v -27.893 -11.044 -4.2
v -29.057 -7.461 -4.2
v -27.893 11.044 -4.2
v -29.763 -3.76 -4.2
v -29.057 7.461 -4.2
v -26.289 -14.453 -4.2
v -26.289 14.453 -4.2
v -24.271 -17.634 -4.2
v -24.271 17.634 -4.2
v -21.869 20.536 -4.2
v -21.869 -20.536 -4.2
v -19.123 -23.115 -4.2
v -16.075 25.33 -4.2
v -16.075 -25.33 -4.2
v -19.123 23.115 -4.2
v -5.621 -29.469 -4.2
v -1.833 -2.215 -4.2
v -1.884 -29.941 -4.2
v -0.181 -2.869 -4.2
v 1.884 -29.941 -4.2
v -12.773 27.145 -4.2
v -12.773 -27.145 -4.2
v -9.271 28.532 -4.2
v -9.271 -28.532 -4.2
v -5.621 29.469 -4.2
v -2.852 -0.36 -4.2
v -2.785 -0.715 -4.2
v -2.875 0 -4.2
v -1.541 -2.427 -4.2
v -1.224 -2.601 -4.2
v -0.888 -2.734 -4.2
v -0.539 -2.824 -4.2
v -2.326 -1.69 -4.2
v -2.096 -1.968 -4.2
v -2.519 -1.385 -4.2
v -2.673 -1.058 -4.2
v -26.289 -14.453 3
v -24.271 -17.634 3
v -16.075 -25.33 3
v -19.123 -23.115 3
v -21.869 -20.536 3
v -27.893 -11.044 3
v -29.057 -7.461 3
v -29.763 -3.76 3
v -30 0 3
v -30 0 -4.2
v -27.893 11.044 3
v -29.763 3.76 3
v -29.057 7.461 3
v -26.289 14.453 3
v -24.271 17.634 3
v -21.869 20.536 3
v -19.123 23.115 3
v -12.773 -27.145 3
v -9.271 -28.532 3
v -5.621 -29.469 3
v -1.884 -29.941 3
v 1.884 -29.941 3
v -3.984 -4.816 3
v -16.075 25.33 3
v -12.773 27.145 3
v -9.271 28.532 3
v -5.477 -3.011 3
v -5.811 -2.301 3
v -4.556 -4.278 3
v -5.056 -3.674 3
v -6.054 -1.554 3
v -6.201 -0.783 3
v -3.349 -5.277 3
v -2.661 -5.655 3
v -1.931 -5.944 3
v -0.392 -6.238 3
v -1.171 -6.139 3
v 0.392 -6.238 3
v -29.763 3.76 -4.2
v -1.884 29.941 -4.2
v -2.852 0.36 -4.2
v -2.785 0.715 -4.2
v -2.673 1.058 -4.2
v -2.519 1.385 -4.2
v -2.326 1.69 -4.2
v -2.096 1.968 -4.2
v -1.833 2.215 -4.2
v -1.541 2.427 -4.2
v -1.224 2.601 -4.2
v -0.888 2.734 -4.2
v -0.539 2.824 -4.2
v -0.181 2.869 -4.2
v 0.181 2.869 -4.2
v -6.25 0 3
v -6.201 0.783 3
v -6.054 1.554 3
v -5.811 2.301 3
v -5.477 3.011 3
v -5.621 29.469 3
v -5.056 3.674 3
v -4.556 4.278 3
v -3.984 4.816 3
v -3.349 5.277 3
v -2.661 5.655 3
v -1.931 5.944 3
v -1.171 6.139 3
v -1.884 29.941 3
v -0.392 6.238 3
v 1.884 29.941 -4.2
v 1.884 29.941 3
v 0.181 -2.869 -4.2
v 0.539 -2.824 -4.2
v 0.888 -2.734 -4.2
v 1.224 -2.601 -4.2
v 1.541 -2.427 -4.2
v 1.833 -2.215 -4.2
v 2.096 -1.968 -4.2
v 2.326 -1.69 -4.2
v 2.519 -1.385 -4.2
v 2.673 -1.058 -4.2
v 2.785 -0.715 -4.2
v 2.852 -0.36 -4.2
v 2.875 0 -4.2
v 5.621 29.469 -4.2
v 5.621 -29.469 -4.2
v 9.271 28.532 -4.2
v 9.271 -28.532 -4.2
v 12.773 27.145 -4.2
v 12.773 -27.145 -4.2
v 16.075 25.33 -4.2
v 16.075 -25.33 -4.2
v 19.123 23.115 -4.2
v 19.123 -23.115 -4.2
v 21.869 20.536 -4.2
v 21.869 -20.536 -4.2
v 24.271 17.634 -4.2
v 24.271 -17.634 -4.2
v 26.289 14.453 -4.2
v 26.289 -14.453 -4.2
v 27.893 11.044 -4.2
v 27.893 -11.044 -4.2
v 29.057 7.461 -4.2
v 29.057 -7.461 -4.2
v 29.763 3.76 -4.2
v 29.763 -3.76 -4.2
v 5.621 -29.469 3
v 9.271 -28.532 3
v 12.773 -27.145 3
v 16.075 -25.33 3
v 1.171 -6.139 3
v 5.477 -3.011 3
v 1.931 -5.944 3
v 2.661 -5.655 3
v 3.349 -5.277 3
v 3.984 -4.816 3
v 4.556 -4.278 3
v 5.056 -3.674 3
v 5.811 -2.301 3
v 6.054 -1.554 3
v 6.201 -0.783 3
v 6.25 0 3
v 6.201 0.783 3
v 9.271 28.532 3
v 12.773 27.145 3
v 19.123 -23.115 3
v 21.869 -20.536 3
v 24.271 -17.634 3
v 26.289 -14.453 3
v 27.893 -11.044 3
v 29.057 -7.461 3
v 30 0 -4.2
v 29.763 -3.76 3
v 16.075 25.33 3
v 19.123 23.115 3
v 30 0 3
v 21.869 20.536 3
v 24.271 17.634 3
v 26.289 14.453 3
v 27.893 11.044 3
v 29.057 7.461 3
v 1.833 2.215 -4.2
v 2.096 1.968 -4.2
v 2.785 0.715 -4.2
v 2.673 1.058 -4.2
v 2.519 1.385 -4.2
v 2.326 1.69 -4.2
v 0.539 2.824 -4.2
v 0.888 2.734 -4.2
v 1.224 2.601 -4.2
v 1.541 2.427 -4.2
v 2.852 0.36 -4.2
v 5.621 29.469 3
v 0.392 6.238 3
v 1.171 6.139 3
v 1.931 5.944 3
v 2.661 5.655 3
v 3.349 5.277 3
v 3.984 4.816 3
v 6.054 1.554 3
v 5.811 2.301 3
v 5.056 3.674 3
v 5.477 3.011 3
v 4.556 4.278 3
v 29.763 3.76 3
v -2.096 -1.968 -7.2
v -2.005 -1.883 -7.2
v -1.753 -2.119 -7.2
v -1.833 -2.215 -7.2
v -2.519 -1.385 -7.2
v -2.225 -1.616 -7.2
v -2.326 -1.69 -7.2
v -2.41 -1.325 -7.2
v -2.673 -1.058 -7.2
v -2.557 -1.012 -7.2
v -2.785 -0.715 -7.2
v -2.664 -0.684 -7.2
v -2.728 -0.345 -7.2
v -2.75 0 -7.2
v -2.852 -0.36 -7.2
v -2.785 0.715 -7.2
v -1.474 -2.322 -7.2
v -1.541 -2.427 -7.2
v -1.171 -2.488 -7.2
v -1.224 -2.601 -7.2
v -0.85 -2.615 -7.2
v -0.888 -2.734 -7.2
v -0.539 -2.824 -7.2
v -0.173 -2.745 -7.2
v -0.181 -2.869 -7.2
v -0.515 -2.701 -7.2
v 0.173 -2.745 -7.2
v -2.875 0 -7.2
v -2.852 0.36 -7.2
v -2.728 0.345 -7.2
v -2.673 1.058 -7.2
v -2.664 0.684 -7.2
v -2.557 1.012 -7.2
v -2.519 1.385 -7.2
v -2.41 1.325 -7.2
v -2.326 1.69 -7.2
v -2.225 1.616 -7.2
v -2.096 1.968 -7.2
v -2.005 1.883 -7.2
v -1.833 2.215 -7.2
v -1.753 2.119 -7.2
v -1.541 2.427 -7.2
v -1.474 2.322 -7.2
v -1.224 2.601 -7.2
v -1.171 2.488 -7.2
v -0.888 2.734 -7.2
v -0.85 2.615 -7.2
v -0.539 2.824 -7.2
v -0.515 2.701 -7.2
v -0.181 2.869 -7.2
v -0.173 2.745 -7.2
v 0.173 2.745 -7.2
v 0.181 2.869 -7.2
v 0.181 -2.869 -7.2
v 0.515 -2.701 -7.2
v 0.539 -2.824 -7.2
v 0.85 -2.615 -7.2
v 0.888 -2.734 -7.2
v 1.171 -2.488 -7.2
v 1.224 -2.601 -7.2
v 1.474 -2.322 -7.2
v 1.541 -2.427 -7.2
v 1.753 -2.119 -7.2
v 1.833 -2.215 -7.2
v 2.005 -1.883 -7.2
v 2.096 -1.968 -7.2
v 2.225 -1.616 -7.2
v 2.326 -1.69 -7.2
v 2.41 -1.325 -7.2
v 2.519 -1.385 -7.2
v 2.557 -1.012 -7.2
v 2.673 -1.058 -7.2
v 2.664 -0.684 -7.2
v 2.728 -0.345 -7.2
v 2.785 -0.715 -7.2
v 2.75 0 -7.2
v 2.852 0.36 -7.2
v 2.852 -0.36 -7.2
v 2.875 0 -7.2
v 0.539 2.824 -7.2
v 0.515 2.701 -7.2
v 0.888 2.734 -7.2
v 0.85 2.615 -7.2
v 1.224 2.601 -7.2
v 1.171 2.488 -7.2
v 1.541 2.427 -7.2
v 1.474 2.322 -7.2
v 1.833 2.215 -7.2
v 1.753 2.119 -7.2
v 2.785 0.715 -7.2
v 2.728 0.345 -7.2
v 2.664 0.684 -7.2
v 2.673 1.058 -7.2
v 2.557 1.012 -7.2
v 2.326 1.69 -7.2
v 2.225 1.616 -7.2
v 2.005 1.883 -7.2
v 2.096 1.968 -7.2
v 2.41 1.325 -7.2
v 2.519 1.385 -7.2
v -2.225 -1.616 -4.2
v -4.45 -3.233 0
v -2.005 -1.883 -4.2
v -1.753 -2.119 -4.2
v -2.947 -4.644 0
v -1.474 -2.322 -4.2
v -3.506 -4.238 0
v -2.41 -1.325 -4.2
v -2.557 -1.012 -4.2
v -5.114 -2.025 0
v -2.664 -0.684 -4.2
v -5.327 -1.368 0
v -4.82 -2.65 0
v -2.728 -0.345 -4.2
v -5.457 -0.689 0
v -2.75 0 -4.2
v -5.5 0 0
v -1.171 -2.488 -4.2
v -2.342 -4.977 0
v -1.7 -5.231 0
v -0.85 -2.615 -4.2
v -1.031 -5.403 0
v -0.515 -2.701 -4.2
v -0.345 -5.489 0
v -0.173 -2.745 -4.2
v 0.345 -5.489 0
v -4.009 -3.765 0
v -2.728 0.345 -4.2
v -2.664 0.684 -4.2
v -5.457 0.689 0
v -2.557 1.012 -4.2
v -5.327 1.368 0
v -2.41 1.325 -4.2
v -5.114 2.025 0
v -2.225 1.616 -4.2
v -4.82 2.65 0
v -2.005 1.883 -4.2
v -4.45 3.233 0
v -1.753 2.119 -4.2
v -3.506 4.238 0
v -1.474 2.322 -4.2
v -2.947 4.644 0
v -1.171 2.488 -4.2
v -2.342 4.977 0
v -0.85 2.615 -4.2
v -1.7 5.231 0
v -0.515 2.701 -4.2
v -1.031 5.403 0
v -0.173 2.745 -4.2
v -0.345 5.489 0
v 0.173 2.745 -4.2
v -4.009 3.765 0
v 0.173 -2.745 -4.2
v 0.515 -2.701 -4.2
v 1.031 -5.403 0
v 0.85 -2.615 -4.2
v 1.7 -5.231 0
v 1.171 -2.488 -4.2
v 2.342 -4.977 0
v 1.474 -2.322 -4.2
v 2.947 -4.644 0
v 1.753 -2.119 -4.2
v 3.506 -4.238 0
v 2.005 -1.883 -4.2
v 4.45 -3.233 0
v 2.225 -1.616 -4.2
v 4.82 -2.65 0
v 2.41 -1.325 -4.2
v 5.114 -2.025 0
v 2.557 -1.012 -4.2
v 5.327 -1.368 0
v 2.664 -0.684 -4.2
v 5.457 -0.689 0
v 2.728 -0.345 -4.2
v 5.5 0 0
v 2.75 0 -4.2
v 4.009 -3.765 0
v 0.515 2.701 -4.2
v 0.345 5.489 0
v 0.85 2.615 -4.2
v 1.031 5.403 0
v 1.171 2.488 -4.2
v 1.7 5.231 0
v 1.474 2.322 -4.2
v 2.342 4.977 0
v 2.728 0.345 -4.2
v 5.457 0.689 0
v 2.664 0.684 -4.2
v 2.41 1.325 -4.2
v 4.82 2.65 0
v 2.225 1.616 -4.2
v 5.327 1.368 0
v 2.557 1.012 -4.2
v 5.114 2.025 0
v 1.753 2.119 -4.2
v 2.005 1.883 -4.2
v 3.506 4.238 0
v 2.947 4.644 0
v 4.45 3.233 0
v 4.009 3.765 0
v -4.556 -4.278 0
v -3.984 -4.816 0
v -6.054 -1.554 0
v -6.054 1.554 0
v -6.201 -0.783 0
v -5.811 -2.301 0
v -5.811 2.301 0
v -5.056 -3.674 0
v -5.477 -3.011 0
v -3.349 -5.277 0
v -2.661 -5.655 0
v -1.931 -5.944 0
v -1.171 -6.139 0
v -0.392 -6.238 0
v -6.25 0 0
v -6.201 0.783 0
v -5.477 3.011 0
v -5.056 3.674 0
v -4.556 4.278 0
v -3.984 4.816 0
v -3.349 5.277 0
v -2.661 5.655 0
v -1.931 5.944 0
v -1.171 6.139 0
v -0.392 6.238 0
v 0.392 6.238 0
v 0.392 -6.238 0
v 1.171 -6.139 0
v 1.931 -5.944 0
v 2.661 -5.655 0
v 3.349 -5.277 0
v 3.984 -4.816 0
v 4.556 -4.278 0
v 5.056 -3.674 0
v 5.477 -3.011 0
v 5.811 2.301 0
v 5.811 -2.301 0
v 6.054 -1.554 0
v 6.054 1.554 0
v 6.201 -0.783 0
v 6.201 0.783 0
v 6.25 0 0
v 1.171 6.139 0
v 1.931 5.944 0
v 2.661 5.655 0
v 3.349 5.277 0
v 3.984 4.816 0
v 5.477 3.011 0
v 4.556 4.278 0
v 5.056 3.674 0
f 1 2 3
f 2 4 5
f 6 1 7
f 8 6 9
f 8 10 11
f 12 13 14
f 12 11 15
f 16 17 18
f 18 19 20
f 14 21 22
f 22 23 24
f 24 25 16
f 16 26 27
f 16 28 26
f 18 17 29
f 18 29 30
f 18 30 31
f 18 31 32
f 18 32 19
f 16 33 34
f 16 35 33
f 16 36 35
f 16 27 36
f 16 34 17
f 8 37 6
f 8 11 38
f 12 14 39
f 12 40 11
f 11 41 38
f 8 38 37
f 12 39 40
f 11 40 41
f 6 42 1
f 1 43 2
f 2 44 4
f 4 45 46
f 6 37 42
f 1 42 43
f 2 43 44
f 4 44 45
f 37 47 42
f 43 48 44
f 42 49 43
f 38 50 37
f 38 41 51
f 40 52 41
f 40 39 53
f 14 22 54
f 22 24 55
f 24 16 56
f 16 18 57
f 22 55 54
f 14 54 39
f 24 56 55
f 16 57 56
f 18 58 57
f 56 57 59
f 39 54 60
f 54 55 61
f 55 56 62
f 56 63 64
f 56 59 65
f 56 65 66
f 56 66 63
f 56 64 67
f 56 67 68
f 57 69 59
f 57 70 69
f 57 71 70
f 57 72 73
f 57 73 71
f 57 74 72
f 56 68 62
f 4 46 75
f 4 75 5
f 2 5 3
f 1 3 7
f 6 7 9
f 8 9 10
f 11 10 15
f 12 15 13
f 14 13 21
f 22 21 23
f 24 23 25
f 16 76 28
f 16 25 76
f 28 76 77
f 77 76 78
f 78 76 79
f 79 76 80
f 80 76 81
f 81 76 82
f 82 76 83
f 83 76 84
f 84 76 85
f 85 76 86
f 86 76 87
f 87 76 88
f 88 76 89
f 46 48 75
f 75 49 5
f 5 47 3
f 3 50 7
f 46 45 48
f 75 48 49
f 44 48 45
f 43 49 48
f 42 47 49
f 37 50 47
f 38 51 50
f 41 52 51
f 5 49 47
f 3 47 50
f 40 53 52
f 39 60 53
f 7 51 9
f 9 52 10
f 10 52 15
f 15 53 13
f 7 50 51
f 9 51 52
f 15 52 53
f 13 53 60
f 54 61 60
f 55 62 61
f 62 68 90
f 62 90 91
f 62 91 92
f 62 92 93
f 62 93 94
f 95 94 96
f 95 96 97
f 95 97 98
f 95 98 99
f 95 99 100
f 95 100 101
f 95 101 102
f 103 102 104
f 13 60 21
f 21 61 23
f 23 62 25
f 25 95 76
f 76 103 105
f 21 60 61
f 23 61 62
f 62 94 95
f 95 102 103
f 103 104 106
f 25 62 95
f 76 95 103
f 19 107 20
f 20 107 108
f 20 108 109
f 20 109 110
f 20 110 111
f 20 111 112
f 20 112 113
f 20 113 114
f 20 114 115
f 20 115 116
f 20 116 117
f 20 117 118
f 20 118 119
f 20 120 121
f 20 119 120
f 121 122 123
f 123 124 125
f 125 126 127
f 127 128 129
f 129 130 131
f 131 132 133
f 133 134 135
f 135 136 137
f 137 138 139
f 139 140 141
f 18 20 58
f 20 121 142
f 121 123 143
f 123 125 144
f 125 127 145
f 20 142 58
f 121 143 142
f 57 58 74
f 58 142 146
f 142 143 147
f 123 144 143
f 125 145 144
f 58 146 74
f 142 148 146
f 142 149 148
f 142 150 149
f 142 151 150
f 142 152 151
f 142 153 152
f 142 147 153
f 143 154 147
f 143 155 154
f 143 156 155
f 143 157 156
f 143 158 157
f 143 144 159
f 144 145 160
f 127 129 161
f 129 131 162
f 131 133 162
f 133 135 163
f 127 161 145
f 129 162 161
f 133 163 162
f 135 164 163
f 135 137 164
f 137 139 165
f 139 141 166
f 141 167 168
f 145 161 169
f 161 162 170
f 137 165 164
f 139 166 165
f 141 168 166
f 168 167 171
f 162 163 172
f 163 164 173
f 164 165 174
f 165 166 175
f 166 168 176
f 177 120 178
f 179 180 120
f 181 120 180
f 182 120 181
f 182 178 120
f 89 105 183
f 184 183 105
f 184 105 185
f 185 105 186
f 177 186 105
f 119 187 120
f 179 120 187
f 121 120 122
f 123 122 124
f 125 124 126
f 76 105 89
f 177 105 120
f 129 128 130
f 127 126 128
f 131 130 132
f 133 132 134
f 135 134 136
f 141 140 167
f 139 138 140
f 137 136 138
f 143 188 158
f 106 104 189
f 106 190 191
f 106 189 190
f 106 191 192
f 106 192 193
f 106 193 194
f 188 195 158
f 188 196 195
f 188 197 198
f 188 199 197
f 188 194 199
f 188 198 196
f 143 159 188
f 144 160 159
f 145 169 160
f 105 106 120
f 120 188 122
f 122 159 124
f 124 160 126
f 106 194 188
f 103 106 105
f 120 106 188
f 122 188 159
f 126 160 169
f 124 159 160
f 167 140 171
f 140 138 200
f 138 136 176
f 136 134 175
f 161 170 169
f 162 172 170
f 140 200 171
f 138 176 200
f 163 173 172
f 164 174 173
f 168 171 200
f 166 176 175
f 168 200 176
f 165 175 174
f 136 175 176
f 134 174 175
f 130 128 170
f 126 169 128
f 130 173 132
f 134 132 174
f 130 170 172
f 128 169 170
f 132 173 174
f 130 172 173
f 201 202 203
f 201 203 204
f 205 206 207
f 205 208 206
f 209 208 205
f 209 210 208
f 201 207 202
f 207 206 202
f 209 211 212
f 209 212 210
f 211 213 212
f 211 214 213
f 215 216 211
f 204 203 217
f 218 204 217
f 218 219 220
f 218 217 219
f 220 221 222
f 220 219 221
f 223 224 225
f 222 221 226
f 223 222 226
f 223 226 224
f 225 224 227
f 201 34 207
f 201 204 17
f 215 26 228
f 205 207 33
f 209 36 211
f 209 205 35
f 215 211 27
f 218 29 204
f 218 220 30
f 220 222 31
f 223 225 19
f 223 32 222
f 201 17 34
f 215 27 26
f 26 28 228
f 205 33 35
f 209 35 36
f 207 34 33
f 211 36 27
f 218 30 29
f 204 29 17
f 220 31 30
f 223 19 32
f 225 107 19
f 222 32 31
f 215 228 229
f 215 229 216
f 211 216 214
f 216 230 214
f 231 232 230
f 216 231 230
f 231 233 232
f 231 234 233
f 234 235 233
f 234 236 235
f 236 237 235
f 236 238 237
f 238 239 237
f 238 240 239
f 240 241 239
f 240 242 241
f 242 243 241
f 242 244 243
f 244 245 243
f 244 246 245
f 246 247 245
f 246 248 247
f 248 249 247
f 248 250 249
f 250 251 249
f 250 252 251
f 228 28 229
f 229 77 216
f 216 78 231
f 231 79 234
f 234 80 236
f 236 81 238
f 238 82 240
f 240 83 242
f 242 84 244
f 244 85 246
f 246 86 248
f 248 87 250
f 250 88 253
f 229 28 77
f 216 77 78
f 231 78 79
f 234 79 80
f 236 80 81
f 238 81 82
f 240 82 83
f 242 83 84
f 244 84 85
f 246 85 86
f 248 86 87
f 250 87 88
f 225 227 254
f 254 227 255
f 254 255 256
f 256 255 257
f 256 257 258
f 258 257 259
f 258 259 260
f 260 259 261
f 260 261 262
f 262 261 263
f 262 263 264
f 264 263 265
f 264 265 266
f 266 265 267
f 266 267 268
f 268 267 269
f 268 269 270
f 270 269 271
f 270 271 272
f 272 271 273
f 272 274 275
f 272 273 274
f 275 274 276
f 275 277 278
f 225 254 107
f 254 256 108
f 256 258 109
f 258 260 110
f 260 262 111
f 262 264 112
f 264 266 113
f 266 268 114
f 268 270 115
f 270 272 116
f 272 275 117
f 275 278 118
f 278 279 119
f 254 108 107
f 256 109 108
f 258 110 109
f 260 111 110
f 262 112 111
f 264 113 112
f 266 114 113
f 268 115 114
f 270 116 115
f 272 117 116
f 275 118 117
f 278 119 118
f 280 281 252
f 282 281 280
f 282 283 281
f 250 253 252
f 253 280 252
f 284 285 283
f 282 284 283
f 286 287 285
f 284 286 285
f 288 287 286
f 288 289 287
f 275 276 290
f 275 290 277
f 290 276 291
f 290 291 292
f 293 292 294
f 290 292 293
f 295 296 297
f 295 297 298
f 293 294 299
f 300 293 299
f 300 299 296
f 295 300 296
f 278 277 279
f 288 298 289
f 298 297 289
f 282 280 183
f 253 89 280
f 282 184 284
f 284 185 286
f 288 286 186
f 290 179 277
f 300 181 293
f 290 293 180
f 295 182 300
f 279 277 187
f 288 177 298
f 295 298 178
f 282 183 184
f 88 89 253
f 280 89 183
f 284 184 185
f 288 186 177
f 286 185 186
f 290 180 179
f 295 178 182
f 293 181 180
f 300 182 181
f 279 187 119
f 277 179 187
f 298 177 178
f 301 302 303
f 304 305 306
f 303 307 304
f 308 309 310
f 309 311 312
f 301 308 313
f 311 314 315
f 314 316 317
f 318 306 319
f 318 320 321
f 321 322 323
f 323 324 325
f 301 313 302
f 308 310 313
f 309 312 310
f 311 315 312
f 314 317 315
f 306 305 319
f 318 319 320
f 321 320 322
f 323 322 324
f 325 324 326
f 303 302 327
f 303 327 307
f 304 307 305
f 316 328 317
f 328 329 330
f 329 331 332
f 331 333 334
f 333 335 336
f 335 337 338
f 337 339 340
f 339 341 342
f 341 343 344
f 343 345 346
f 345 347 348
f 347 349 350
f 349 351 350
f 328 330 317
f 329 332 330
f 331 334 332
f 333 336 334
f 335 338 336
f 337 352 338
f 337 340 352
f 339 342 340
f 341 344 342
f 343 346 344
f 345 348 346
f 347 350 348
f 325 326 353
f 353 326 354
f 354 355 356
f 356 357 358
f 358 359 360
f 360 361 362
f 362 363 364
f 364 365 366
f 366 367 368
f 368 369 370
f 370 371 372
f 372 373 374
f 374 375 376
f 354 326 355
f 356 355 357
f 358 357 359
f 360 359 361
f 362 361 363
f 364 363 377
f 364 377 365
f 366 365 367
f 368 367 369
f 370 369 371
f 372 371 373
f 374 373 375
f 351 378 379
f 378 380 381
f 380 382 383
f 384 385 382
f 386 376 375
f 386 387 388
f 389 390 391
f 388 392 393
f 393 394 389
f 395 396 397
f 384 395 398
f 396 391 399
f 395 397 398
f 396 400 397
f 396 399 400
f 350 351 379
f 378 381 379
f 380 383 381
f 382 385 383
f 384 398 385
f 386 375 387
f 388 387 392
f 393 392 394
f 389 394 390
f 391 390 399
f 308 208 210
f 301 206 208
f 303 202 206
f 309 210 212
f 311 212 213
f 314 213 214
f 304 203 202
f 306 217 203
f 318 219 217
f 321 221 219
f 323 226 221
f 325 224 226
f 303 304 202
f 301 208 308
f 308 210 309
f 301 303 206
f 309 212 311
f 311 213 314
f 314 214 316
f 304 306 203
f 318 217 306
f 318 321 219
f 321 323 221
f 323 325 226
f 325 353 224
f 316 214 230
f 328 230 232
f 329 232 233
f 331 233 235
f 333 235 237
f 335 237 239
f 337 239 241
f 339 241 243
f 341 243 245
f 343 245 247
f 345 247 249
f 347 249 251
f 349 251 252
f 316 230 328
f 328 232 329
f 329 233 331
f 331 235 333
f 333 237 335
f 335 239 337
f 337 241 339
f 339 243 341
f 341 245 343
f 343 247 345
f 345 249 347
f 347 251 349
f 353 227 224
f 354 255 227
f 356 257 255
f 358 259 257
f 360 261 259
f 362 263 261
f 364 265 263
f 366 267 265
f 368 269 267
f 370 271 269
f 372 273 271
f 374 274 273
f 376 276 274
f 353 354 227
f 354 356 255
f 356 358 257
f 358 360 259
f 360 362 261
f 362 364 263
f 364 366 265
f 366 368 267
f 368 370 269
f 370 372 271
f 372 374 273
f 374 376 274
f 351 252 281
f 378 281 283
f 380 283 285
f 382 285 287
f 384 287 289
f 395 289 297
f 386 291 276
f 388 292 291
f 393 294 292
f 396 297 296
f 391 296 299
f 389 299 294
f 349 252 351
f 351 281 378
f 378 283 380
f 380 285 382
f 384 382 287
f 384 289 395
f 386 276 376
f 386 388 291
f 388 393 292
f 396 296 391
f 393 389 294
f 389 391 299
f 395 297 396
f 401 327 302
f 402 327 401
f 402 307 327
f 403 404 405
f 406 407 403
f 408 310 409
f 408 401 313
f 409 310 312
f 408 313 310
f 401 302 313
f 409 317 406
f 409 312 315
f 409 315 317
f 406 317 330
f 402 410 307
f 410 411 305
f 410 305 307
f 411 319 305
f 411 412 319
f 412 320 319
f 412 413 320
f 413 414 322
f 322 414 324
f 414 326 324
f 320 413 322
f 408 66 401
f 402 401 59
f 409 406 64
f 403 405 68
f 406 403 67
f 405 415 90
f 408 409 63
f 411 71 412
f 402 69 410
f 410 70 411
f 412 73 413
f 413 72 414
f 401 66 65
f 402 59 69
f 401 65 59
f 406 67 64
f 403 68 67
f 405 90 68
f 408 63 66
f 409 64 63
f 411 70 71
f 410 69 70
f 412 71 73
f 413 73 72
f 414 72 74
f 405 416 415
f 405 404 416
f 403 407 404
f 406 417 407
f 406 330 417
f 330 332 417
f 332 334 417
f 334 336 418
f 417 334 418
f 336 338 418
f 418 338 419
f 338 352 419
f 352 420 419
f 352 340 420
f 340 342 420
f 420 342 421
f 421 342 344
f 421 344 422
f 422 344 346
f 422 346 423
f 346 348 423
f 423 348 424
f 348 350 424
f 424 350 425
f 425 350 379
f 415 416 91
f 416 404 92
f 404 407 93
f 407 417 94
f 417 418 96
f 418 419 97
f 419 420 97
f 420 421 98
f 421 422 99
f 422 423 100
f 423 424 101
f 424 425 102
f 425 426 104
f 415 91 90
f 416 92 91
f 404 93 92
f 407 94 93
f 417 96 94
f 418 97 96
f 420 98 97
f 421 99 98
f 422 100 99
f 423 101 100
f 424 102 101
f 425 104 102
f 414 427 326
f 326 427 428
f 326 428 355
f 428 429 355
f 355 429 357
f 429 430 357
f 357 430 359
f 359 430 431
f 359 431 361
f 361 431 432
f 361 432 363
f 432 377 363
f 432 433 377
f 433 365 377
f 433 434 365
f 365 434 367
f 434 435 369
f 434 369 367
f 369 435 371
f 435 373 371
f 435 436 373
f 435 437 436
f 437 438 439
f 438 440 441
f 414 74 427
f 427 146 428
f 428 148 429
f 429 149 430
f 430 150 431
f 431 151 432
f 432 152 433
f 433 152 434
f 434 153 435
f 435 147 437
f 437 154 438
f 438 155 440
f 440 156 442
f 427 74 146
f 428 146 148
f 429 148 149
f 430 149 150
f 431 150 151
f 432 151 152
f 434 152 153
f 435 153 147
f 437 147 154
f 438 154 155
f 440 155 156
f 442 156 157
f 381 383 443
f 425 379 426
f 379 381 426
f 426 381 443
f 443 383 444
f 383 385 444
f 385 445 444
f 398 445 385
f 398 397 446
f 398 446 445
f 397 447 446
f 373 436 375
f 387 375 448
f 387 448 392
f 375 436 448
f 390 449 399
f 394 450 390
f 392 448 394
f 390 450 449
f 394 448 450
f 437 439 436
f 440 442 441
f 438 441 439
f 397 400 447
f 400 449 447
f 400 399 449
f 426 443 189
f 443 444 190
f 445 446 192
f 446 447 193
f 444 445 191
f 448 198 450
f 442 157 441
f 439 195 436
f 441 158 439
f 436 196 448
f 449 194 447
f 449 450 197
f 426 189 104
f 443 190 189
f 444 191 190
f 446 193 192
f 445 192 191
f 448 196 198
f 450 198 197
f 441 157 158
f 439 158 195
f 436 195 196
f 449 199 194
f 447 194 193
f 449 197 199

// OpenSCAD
$fn = 50;


difference() {
	union() {
		translate(v = [0, 0, -4.2000000000]) {
			cylinder(h = 7.2000000000, r = 30.0000000000);
		}
		#translate(v = [0, 0, -7.2000000000]) {
			cylinder(h = 7.2000000000, r = 2.8750000000);
		}
	}
	union() {
		translate(v = [0, 0, 0]) {
			rotate(a = [0, 0, 0]) {
				difference() {
					union() {
						translate(v = [0, 0, -7.2000000000]) {
							cylinder(h = 7.2000000000, r = 2.2500000000);
						}
						translate(v = [0, 0, -4.2000000000]) {
							cylinder(h = 4.2000000000, r1 = 2.7500000000, r2 = 5.5000000000);
						}
						translate(v = [0, 0, -7.2000000000]) {
							cylinder(h = 7.2000000000, r = 2.7500000000);
						}
						translate(v = [0, 0, -7.2000000000]) {
							cylinder(h = 7.2000000000, r = 2.2500000000);
						}
					}
					union();
				}
			}
		}
		#cylinder(h = 3, r = 6.2500000000);
	}
}
